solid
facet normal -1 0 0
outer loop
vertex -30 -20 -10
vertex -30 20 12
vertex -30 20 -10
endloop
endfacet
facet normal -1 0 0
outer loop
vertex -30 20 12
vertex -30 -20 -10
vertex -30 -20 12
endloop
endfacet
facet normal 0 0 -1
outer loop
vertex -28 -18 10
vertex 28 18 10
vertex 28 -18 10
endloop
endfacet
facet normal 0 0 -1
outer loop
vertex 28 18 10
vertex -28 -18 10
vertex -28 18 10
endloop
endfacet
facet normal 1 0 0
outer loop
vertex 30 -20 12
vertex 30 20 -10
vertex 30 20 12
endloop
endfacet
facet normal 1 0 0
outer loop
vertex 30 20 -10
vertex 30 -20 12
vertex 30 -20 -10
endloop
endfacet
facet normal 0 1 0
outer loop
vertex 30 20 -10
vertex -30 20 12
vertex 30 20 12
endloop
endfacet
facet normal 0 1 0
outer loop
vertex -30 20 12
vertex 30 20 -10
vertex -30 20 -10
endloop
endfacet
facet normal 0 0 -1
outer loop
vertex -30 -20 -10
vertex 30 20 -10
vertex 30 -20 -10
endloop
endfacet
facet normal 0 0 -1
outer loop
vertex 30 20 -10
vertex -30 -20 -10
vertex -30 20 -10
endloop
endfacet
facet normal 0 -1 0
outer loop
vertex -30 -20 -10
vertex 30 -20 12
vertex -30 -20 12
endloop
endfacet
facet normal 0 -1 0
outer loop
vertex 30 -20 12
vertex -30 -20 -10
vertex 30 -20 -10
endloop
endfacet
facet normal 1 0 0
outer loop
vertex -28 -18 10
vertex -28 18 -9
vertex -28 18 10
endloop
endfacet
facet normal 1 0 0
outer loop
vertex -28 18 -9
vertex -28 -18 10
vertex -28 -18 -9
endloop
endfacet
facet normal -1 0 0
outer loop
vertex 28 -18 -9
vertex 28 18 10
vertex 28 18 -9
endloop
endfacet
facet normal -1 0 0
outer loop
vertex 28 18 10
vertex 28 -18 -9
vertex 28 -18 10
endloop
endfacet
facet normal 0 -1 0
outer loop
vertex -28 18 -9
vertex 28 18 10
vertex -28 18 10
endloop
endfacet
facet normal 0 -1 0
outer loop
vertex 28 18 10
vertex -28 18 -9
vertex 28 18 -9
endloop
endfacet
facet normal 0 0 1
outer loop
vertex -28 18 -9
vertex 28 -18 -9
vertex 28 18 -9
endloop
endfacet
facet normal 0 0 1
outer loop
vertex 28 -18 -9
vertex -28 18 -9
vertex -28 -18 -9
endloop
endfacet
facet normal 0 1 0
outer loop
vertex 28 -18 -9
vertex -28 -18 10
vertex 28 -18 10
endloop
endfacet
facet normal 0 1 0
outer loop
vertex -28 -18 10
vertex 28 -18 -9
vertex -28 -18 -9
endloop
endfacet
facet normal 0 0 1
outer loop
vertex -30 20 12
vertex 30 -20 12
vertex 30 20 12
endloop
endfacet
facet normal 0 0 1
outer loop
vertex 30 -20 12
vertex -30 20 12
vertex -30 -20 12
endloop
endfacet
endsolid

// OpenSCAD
// Simple 3D box model
// Dimensions: 60mm x 40mm x 20mm

// Outer box body
difference() {
    // Main box volume
    cube([60, 40, 20], center = true);

    // Hollow out the inside
    translate([0, 0, 1])
        cube([56, 36, 20], center = true);
}

// Optional lid
translate([0, 0, 11])
    cube([60, 40, 2], center = true);
